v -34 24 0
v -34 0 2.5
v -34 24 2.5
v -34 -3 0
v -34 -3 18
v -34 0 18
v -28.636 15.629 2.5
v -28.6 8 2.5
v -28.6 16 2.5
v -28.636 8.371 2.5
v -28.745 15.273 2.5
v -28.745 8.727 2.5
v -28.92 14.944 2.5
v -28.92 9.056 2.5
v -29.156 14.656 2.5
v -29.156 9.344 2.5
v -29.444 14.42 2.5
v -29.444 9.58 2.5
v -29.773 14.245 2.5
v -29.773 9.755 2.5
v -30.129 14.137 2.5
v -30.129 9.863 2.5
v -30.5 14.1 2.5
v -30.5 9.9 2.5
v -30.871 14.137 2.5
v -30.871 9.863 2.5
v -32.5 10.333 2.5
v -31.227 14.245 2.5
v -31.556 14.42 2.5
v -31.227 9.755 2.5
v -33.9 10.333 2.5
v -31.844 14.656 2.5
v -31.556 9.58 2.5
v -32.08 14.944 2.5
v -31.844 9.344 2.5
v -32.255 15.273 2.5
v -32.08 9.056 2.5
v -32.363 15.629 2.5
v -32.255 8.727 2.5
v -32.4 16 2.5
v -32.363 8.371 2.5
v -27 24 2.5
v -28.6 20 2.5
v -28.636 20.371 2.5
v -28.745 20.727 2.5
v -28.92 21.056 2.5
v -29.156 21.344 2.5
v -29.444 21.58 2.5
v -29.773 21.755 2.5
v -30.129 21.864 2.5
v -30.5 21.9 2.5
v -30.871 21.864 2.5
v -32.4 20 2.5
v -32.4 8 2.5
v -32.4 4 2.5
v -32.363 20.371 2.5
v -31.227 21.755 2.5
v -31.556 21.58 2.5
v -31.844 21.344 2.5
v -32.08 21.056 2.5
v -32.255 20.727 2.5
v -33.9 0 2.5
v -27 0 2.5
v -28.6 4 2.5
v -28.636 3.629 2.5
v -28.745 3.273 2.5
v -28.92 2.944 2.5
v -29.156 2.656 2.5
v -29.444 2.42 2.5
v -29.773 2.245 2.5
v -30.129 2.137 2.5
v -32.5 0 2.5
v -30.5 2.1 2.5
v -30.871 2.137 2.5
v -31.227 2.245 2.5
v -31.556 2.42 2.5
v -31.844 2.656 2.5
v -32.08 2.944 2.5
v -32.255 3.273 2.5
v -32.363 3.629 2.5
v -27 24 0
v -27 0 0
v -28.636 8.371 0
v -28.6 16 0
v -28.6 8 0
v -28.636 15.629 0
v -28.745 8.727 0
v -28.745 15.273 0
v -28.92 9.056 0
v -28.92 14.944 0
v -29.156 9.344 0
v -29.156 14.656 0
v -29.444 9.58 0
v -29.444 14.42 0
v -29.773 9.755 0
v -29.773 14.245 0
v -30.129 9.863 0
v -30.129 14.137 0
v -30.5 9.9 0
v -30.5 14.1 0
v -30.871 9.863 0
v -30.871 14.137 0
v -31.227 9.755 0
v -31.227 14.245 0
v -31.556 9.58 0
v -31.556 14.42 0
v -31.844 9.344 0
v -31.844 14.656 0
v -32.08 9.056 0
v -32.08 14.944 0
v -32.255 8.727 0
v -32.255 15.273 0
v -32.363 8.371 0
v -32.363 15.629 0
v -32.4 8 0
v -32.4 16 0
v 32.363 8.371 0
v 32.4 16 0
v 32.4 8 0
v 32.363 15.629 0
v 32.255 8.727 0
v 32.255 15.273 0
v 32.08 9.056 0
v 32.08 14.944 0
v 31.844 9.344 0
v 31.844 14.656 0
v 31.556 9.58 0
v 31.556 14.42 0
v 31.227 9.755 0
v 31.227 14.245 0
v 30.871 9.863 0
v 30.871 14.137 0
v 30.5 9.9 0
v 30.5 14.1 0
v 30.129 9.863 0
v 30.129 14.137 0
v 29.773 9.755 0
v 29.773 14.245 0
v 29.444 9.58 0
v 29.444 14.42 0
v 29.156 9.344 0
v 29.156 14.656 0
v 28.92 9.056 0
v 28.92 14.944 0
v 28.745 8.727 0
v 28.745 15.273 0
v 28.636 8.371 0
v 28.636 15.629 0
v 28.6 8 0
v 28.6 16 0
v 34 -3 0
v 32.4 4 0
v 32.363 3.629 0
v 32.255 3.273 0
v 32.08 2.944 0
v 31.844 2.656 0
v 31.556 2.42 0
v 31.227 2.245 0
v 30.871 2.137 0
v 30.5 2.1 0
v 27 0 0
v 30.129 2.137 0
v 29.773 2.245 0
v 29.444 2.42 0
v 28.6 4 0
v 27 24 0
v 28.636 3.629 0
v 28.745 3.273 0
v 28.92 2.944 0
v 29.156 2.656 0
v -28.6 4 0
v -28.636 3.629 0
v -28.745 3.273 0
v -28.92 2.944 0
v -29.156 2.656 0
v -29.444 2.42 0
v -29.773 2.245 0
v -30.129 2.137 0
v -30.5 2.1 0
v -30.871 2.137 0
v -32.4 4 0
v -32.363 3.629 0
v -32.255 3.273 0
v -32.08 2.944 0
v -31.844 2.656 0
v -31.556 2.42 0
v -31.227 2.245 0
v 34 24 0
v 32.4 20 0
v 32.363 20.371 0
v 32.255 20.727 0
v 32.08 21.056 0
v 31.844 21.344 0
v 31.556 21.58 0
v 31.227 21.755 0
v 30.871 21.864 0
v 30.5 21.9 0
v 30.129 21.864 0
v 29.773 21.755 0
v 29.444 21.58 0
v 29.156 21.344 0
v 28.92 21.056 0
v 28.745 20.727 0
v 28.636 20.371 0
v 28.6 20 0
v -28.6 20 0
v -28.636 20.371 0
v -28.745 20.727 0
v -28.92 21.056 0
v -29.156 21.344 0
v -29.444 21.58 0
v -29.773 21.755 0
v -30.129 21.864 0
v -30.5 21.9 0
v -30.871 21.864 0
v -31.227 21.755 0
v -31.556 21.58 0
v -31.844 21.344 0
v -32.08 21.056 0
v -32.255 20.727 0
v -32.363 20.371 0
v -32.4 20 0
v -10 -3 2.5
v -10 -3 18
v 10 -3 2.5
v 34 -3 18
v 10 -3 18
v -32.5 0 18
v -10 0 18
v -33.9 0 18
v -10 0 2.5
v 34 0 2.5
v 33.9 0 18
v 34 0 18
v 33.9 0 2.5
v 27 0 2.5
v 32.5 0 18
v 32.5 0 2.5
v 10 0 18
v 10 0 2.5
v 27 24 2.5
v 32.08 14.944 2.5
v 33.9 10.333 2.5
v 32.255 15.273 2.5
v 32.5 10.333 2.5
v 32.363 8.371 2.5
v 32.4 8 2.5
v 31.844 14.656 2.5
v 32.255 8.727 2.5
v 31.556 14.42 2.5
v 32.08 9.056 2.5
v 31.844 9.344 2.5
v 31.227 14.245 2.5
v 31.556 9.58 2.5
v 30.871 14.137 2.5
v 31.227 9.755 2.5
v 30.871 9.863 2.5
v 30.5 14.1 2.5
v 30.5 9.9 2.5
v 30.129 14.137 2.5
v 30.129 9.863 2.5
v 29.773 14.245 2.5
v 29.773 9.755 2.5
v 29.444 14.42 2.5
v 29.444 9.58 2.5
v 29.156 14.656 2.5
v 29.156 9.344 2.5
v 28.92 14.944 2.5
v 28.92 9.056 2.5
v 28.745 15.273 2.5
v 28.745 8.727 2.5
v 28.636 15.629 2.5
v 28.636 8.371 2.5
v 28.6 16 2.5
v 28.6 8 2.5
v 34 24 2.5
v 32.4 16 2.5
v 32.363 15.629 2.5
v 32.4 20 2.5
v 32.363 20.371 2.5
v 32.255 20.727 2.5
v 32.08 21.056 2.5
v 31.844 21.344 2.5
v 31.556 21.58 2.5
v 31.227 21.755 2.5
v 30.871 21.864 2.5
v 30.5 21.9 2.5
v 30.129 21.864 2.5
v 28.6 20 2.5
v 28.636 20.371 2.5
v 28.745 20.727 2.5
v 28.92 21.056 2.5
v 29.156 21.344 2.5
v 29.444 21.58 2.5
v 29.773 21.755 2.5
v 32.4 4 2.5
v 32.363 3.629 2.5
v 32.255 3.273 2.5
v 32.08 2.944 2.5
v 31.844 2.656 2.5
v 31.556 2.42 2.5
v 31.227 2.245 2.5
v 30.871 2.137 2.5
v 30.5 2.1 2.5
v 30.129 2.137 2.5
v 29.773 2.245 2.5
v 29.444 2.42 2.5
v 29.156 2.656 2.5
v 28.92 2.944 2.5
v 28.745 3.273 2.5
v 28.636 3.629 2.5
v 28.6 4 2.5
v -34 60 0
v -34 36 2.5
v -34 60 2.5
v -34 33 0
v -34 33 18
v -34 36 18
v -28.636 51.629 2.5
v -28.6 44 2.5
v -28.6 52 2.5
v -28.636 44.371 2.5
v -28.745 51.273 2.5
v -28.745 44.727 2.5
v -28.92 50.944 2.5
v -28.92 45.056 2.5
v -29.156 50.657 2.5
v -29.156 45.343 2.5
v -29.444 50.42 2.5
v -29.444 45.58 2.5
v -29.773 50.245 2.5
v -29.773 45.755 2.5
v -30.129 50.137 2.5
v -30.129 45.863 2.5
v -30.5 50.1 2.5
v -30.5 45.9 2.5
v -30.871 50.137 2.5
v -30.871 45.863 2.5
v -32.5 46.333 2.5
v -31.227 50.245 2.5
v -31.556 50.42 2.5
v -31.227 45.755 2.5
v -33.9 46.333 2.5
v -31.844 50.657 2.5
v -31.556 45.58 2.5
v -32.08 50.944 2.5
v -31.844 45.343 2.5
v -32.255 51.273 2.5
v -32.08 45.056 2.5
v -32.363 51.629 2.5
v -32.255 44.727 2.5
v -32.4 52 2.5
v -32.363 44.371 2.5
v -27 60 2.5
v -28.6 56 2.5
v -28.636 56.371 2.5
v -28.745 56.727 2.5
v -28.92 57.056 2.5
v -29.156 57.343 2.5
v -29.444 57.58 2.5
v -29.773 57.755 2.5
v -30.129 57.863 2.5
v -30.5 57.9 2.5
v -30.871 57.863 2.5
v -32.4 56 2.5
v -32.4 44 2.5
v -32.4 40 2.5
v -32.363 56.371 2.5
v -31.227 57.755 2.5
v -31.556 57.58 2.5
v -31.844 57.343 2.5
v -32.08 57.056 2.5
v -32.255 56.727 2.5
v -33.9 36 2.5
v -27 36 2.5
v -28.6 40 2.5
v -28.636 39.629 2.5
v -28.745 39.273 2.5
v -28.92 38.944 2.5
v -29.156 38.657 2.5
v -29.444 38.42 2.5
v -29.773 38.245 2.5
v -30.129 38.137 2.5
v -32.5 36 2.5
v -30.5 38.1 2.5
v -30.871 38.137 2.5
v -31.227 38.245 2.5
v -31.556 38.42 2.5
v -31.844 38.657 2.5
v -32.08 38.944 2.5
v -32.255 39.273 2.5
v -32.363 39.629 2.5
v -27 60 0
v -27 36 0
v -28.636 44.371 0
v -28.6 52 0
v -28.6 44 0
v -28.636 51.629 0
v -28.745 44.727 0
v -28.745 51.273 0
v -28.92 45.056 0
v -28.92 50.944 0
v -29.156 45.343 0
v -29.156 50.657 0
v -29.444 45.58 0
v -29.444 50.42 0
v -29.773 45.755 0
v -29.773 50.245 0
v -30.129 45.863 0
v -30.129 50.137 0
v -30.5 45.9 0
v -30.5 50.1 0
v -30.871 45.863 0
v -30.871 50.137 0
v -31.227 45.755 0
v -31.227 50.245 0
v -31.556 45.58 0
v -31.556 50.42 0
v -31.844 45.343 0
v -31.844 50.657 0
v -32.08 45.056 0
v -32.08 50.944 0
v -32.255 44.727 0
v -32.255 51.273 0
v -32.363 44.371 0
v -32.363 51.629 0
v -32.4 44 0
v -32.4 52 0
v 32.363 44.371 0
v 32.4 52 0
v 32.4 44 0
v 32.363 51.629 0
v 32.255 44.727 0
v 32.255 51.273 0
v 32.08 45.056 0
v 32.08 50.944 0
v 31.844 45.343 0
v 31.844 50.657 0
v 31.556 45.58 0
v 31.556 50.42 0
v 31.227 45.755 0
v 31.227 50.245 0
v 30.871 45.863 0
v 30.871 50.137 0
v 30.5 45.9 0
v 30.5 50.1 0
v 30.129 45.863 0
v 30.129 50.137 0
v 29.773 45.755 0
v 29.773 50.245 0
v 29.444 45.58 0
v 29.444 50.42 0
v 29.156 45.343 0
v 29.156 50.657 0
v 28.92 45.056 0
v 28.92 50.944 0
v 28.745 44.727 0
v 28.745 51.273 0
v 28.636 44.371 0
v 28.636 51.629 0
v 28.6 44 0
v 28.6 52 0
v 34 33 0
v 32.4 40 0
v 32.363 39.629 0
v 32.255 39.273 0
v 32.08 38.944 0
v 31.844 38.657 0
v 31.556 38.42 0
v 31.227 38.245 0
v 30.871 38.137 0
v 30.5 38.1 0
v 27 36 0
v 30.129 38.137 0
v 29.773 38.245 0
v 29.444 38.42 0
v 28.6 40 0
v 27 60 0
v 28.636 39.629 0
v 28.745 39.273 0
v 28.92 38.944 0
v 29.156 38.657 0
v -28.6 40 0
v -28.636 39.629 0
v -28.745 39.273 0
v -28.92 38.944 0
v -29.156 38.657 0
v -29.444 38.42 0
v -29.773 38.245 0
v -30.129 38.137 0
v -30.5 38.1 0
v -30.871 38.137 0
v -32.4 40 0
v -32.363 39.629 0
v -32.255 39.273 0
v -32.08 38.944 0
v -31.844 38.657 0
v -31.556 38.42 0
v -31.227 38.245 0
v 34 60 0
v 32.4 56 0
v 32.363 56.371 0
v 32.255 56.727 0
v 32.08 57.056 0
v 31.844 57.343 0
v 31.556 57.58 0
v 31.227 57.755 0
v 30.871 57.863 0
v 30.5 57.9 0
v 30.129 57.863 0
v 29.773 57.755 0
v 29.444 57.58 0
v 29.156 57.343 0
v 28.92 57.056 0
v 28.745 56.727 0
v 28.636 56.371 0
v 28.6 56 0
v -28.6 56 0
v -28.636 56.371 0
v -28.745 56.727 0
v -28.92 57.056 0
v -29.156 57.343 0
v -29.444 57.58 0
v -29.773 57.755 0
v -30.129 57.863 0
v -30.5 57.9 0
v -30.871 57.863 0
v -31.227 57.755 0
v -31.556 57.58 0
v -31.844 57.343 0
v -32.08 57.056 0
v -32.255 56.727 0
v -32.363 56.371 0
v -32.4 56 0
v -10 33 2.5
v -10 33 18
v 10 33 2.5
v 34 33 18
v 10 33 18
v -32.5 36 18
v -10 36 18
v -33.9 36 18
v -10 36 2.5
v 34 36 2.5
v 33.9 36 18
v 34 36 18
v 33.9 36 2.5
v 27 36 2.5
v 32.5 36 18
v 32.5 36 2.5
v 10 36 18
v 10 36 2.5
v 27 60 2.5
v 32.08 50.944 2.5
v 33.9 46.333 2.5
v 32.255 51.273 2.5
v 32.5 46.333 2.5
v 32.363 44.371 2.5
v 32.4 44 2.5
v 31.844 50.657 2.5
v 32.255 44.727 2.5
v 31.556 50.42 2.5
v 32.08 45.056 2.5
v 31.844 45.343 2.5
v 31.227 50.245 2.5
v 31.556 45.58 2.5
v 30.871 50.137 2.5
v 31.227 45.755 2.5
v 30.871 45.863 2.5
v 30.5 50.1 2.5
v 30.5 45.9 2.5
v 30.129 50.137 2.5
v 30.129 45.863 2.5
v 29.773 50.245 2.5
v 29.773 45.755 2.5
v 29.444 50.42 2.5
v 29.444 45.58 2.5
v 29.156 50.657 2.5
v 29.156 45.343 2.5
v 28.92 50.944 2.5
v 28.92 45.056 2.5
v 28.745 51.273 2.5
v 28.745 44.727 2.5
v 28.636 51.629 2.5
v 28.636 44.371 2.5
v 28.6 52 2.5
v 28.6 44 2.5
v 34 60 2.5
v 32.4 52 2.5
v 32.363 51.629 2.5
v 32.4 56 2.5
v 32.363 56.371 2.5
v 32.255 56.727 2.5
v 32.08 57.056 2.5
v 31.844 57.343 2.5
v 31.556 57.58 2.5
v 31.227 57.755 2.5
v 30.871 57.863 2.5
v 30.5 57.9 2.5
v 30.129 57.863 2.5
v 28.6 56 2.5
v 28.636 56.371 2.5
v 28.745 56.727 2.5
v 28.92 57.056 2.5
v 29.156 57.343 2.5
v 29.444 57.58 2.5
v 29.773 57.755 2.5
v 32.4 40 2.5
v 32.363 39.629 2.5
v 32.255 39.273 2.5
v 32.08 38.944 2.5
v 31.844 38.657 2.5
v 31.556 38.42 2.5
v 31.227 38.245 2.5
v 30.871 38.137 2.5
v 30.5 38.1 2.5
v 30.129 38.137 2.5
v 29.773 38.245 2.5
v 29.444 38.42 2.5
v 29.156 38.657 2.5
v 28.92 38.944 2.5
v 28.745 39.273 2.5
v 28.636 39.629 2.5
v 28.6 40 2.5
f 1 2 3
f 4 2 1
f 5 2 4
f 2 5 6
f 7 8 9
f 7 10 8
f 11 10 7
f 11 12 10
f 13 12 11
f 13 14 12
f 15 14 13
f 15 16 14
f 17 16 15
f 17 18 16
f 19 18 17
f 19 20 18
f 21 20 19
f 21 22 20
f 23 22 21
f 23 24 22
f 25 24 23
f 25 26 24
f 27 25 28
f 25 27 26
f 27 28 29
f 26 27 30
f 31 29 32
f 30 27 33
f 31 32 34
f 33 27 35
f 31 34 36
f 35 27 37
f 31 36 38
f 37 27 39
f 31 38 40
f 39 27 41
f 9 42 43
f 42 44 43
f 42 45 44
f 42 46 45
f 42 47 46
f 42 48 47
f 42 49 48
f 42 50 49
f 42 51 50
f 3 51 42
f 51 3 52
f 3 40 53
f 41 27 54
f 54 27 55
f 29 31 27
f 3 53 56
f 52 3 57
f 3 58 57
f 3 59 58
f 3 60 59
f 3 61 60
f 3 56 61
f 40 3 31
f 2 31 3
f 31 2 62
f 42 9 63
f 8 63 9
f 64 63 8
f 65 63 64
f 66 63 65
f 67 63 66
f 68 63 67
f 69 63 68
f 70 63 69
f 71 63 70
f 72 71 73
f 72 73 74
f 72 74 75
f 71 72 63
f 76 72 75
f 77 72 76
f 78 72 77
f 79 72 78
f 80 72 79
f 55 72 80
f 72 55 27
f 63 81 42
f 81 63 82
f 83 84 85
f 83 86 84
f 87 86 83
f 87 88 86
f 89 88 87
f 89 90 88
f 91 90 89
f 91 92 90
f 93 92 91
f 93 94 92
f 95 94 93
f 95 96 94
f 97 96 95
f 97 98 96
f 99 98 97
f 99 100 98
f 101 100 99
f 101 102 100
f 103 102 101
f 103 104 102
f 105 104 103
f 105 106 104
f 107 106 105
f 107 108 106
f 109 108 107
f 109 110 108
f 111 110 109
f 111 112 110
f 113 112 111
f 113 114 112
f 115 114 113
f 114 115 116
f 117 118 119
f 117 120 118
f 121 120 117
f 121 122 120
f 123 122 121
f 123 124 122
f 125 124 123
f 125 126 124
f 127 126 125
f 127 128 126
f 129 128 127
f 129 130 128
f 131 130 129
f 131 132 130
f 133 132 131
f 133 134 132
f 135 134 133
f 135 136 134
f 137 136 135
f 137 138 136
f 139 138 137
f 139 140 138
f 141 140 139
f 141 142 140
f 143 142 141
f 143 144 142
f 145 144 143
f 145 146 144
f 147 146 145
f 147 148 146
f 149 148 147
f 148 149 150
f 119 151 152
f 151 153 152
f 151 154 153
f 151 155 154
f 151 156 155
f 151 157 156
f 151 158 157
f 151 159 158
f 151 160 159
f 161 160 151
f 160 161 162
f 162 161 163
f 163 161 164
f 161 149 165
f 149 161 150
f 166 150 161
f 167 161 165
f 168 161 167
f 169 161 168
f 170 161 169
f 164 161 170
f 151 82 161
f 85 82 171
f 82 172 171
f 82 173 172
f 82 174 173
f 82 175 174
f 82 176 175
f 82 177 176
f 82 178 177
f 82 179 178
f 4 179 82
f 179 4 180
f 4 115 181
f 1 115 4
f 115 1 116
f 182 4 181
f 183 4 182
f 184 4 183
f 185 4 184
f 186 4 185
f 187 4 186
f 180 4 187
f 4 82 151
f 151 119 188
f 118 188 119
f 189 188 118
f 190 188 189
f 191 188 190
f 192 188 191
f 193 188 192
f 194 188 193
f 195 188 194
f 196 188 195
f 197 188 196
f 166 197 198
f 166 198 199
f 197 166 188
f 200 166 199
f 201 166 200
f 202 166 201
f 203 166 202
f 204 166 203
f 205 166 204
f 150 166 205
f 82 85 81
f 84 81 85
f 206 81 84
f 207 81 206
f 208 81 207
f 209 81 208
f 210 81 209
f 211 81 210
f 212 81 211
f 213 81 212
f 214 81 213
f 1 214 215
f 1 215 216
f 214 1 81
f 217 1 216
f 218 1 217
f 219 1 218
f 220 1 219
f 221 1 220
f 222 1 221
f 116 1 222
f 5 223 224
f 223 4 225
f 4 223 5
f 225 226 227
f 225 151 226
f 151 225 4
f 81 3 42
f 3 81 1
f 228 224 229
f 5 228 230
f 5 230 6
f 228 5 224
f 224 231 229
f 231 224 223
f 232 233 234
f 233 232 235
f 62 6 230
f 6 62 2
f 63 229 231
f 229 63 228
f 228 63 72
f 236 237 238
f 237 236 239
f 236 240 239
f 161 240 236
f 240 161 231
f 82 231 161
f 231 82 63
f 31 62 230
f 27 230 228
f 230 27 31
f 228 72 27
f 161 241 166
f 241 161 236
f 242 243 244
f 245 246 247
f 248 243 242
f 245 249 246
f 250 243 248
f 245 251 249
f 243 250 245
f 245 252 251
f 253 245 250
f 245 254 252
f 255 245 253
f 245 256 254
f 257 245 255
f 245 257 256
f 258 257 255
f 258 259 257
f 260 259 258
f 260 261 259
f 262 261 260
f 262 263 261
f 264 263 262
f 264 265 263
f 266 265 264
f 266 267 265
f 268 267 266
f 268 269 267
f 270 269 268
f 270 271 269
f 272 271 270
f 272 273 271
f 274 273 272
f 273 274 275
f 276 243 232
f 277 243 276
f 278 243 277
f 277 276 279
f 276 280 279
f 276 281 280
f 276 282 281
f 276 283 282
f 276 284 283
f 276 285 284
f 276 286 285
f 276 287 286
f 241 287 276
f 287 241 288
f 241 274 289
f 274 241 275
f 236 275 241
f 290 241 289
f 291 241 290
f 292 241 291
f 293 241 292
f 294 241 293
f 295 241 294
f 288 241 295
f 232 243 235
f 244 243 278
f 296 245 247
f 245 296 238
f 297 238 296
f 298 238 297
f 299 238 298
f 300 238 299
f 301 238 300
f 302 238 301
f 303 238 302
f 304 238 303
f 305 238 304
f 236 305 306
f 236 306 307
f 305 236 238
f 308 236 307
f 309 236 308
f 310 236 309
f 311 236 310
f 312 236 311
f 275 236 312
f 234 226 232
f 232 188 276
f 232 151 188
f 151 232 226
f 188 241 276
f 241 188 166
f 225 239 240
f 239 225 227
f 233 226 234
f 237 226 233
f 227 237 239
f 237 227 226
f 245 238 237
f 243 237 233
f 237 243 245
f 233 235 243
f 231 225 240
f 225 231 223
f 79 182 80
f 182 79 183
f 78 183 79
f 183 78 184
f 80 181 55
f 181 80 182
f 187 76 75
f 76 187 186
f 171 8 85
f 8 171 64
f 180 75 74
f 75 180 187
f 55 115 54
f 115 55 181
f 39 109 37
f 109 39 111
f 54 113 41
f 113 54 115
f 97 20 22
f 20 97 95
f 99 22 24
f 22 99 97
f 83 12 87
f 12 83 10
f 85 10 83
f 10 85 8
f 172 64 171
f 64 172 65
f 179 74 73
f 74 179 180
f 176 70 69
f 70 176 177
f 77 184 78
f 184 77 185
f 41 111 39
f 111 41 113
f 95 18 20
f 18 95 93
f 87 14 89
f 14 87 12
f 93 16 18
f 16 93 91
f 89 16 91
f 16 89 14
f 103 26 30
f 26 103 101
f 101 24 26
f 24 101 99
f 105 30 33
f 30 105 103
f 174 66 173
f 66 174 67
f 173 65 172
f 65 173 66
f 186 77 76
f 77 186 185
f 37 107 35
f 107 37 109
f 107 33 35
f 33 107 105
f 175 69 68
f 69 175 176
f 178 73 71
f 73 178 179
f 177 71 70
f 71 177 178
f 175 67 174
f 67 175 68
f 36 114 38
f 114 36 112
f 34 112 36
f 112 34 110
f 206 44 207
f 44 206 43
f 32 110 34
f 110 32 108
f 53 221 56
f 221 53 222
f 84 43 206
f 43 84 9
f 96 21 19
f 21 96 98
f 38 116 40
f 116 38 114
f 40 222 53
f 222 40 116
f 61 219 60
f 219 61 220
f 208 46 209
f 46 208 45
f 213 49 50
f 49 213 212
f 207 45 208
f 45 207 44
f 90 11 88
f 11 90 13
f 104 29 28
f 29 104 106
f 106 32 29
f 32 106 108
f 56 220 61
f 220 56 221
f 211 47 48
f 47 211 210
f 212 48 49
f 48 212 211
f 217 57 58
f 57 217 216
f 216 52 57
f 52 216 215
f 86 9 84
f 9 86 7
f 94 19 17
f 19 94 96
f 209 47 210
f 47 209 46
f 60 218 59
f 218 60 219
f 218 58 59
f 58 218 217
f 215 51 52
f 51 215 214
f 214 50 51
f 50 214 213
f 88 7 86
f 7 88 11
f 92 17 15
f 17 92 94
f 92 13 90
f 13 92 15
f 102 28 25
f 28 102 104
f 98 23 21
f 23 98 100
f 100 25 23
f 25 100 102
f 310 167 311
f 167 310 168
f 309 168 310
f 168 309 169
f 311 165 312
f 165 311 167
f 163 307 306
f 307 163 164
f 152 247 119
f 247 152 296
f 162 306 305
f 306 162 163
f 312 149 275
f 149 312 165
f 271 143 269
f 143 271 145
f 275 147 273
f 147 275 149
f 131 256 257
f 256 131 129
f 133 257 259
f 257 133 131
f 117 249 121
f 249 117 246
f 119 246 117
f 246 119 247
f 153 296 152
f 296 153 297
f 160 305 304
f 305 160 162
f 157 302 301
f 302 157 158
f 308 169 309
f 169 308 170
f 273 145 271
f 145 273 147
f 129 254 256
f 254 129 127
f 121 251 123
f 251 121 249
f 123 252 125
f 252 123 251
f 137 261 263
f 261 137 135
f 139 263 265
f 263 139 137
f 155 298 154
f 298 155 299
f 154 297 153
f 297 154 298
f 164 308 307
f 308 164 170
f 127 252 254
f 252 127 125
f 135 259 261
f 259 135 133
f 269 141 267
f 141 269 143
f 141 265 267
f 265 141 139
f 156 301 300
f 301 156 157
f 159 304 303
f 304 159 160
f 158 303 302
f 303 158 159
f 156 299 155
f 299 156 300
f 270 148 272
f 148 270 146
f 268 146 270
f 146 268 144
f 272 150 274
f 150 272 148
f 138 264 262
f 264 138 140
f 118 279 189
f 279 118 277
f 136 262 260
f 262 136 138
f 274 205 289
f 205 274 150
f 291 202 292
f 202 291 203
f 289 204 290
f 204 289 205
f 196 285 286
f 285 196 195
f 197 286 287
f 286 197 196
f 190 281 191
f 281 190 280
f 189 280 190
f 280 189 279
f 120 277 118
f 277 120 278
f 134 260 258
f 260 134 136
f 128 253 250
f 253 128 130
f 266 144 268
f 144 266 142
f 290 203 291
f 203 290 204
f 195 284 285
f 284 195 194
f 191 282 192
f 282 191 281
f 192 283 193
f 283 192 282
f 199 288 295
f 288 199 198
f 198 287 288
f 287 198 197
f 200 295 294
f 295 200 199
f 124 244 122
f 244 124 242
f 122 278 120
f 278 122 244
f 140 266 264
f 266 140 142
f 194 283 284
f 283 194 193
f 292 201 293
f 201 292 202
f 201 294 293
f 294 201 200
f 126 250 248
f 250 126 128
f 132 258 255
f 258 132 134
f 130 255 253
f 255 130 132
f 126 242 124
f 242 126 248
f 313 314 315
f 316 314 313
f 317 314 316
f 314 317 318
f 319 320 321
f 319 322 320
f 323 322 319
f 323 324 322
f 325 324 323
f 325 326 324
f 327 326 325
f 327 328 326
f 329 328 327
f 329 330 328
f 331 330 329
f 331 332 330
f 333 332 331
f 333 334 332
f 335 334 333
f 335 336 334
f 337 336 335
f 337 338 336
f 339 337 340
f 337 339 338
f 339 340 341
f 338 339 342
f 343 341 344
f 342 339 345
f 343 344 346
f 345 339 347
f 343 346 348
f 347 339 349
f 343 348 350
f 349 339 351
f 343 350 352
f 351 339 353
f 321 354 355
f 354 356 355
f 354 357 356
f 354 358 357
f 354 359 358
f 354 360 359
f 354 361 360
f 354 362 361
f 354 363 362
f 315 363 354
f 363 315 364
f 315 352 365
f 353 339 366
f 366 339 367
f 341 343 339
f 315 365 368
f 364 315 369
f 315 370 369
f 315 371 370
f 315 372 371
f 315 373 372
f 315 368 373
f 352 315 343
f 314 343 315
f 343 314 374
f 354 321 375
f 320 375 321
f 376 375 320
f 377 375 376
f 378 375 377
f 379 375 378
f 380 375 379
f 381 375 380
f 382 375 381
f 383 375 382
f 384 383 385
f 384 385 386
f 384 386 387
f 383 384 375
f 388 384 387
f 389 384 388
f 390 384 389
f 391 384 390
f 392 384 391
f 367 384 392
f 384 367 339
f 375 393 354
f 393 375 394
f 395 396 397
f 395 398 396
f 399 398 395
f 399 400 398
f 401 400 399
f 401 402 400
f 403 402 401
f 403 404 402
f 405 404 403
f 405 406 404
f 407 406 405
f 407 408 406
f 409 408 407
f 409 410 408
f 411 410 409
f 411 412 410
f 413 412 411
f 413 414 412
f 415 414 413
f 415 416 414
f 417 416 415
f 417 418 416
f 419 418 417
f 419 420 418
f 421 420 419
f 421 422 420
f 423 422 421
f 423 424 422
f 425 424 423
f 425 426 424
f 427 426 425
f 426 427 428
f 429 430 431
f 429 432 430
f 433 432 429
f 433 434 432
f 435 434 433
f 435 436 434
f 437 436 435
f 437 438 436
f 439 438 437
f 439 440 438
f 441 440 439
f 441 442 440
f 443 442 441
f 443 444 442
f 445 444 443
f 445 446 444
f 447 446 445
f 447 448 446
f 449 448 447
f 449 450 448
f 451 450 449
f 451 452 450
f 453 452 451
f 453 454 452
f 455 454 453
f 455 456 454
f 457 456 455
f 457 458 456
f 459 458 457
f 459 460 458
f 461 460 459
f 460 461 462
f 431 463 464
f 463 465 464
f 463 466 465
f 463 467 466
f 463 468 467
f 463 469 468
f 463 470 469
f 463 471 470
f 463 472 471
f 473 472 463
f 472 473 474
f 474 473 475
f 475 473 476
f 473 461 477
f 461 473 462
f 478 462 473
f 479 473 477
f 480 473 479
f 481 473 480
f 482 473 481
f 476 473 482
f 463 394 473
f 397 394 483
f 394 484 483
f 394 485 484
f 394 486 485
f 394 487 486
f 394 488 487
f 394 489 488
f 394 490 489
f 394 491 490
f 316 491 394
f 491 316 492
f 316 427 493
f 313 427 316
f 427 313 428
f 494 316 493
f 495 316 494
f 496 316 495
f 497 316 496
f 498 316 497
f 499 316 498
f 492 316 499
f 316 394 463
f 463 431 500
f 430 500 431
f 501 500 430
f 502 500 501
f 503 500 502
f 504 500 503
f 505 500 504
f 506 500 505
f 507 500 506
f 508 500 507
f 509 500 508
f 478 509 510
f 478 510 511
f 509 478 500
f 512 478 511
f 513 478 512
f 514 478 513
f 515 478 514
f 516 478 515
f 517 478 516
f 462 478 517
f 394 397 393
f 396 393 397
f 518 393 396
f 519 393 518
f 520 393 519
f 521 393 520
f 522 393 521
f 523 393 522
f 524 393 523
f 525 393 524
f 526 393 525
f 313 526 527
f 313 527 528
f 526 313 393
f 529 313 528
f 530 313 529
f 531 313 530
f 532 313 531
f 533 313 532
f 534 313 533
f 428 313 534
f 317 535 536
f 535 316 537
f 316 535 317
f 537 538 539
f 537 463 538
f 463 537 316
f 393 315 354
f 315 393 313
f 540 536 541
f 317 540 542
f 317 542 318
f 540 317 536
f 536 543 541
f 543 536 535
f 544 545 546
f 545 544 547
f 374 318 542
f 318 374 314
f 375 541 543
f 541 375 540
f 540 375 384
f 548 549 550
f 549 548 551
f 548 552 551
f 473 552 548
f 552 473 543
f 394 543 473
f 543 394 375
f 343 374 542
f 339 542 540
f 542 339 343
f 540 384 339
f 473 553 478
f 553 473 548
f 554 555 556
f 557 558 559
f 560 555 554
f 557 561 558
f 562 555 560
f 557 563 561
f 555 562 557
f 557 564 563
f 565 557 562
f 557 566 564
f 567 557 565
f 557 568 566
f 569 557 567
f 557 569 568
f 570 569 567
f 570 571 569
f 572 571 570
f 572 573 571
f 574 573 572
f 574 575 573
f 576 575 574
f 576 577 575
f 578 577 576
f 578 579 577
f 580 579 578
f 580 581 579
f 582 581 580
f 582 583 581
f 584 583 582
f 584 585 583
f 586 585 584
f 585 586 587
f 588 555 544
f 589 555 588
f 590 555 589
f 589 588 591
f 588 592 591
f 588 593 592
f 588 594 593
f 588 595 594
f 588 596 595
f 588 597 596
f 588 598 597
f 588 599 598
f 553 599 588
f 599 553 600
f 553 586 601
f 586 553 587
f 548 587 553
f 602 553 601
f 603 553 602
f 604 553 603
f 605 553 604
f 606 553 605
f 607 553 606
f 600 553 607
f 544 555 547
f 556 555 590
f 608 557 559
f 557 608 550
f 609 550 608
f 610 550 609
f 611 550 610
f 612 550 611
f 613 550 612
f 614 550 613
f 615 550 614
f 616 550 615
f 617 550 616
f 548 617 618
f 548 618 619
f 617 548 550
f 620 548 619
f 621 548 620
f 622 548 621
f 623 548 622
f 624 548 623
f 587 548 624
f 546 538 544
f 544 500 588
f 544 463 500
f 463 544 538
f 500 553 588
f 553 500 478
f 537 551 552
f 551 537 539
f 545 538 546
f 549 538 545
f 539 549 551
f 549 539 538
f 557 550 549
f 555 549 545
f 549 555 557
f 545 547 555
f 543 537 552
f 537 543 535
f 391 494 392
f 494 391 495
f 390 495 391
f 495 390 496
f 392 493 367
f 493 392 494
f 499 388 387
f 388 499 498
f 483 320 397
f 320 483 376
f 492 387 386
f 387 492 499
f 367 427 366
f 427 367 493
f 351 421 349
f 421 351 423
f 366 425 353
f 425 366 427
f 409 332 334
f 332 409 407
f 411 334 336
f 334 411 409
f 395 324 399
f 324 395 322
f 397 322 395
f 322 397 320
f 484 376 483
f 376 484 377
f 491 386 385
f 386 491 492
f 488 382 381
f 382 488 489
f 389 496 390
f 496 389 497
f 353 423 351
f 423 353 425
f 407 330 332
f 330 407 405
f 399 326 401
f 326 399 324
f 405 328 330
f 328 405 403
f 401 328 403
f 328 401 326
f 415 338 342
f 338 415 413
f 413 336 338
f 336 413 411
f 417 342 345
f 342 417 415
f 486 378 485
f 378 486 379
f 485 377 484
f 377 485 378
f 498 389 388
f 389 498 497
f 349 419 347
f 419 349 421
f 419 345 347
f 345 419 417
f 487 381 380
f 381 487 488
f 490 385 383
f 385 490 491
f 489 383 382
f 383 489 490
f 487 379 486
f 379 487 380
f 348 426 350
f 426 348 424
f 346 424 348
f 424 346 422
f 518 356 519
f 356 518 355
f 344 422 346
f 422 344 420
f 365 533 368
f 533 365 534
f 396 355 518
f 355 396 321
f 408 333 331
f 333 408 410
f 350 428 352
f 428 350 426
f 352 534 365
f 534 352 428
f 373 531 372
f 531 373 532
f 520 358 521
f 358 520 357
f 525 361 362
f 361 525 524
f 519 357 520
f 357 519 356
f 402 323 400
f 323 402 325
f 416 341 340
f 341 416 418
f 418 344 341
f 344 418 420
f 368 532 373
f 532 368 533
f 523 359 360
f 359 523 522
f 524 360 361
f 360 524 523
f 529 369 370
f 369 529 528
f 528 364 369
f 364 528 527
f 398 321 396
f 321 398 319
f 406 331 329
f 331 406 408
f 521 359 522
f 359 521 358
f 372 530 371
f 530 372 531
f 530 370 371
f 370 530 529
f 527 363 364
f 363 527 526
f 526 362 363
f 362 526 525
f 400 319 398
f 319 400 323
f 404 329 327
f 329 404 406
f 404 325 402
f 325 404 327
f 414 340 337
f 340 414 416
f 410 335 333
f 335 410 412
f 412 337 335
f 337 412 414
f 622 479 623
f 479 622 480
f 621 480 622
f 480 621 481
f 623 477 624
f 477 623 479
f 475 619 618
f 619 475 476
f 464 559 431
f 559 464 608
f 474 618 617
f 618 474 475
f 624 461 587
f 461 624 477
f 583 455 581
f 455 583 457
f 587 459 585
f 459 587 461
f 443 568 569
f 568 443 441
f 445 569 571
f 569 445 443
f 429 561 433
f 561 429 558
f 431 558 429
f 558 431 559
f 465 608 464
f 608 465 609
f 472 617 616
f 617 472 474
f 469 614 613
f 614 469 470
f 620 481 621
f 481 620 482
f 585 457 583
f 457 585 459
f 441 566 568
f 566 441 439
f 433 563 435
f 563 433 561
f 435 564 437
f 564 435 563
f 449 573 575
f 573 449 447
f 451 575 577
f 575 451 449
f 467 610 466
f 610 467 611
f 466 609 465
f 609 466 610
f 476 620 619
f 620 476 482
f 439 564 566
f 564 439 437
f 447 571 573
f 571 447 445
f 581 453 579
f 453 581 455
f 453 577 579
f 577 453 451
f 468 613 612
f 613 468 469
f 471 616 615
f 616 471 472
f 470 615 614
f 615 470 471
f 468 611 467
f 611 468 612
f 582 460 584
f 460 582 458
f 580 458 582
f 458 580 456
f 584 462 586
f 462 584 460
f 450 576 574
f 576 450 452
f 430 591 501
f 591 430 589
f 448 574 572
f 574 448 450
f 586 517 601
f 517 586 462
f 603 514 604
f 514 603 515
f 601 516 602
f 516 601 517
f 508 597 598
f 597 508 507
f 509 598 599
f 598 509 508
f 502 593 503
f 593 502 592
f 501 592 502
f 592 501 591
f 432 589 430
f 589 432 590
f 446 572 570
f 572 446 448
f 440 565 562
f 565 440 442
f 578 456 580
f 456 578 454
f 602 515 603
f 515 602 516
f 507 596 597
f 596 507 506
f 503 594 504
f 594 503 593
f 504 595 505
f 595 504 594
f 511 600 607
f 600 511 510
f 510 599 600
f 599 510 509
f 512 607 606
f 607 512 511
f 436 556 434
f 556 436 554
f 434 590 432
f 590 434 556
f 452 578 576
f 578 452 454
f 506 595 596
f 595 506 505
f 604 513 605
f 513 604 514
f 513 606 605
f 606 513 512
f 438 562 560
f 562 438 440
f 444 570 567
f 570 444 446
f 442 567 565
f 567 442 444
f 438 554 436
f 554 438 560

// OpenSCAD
// B.G.D battery end-stop pair, FIT PROTOTYPE, mm, 2026-09-22.
// Original project design. See battery-design.md for routing and limits.
// Print feet down; install feet against underside of lower plate, fingers DOWN.
// Stops carry fore/aft restraint only. Two existing straps carry battery weight.
view = "print"; // "assembly" shows nominal battery as non-exported context
battery_length = 141;
battery_width = 49;
battery_height = 50.5;
side_clear = 54;
foot_width = 7;
foot_length = 24;
wall = 3;
height = 18;
base = 2.5;
$fn=32;
assert(battery_length>=137 && battery_length<=160);
assert(battery_width>=44 && battery_width<=51);
assert(battery_height>=31 && battery_height<=53);
assert(side_clear-battery_width>=3);

module stop() {
    difference() {
        union() {
            // End web lies outside the pack end; central cable opening above it.
            translate([-34,-wall,0]) cube([68,wall,base]);
            for(s=[-1,1]) {
                translate([s*30.5-foot_width/2,-wall,0])
                    cube([foot_width,foot_length+wall,base]);
                translate([s*22-12,-wall,0]) cube([24,wall,height]);
                // Triangular brace beside pack; no shelf underneath its wrapper.
                translate([s*33.2-0.7,0,0])
                    rotate([90,0,90]) linear_extrude(1.4)
                        polygon([[0,0],[12,0],[0,height]]);
            }
        }
        // Closed adjustable lashing slots; two opposed tethers per foot.
        for(s=[-1,1]) for(y=[6,18])
            translate([s*30.5,y,-1])
                linear_extrude(base+2) hull() {
                    translate([0,-2]) circle(d=3.8);
                    translate([0,2]) circle(d=3.8);
                }
    }
}
if(view=="assembly") {
    translate([0,-battery_length/2,0]) rotate([180,0,180]) stop();
    translate([0,battery_length/2,0]) rotate([180,0,0]) stop();
    %translate([-battery_width/2,-battery_length/2,-battery_height-2])
        cube([battery_width,battery_length,battery_height]);
} else {
    stop();
    translate([0,36,0]) stop();
}
